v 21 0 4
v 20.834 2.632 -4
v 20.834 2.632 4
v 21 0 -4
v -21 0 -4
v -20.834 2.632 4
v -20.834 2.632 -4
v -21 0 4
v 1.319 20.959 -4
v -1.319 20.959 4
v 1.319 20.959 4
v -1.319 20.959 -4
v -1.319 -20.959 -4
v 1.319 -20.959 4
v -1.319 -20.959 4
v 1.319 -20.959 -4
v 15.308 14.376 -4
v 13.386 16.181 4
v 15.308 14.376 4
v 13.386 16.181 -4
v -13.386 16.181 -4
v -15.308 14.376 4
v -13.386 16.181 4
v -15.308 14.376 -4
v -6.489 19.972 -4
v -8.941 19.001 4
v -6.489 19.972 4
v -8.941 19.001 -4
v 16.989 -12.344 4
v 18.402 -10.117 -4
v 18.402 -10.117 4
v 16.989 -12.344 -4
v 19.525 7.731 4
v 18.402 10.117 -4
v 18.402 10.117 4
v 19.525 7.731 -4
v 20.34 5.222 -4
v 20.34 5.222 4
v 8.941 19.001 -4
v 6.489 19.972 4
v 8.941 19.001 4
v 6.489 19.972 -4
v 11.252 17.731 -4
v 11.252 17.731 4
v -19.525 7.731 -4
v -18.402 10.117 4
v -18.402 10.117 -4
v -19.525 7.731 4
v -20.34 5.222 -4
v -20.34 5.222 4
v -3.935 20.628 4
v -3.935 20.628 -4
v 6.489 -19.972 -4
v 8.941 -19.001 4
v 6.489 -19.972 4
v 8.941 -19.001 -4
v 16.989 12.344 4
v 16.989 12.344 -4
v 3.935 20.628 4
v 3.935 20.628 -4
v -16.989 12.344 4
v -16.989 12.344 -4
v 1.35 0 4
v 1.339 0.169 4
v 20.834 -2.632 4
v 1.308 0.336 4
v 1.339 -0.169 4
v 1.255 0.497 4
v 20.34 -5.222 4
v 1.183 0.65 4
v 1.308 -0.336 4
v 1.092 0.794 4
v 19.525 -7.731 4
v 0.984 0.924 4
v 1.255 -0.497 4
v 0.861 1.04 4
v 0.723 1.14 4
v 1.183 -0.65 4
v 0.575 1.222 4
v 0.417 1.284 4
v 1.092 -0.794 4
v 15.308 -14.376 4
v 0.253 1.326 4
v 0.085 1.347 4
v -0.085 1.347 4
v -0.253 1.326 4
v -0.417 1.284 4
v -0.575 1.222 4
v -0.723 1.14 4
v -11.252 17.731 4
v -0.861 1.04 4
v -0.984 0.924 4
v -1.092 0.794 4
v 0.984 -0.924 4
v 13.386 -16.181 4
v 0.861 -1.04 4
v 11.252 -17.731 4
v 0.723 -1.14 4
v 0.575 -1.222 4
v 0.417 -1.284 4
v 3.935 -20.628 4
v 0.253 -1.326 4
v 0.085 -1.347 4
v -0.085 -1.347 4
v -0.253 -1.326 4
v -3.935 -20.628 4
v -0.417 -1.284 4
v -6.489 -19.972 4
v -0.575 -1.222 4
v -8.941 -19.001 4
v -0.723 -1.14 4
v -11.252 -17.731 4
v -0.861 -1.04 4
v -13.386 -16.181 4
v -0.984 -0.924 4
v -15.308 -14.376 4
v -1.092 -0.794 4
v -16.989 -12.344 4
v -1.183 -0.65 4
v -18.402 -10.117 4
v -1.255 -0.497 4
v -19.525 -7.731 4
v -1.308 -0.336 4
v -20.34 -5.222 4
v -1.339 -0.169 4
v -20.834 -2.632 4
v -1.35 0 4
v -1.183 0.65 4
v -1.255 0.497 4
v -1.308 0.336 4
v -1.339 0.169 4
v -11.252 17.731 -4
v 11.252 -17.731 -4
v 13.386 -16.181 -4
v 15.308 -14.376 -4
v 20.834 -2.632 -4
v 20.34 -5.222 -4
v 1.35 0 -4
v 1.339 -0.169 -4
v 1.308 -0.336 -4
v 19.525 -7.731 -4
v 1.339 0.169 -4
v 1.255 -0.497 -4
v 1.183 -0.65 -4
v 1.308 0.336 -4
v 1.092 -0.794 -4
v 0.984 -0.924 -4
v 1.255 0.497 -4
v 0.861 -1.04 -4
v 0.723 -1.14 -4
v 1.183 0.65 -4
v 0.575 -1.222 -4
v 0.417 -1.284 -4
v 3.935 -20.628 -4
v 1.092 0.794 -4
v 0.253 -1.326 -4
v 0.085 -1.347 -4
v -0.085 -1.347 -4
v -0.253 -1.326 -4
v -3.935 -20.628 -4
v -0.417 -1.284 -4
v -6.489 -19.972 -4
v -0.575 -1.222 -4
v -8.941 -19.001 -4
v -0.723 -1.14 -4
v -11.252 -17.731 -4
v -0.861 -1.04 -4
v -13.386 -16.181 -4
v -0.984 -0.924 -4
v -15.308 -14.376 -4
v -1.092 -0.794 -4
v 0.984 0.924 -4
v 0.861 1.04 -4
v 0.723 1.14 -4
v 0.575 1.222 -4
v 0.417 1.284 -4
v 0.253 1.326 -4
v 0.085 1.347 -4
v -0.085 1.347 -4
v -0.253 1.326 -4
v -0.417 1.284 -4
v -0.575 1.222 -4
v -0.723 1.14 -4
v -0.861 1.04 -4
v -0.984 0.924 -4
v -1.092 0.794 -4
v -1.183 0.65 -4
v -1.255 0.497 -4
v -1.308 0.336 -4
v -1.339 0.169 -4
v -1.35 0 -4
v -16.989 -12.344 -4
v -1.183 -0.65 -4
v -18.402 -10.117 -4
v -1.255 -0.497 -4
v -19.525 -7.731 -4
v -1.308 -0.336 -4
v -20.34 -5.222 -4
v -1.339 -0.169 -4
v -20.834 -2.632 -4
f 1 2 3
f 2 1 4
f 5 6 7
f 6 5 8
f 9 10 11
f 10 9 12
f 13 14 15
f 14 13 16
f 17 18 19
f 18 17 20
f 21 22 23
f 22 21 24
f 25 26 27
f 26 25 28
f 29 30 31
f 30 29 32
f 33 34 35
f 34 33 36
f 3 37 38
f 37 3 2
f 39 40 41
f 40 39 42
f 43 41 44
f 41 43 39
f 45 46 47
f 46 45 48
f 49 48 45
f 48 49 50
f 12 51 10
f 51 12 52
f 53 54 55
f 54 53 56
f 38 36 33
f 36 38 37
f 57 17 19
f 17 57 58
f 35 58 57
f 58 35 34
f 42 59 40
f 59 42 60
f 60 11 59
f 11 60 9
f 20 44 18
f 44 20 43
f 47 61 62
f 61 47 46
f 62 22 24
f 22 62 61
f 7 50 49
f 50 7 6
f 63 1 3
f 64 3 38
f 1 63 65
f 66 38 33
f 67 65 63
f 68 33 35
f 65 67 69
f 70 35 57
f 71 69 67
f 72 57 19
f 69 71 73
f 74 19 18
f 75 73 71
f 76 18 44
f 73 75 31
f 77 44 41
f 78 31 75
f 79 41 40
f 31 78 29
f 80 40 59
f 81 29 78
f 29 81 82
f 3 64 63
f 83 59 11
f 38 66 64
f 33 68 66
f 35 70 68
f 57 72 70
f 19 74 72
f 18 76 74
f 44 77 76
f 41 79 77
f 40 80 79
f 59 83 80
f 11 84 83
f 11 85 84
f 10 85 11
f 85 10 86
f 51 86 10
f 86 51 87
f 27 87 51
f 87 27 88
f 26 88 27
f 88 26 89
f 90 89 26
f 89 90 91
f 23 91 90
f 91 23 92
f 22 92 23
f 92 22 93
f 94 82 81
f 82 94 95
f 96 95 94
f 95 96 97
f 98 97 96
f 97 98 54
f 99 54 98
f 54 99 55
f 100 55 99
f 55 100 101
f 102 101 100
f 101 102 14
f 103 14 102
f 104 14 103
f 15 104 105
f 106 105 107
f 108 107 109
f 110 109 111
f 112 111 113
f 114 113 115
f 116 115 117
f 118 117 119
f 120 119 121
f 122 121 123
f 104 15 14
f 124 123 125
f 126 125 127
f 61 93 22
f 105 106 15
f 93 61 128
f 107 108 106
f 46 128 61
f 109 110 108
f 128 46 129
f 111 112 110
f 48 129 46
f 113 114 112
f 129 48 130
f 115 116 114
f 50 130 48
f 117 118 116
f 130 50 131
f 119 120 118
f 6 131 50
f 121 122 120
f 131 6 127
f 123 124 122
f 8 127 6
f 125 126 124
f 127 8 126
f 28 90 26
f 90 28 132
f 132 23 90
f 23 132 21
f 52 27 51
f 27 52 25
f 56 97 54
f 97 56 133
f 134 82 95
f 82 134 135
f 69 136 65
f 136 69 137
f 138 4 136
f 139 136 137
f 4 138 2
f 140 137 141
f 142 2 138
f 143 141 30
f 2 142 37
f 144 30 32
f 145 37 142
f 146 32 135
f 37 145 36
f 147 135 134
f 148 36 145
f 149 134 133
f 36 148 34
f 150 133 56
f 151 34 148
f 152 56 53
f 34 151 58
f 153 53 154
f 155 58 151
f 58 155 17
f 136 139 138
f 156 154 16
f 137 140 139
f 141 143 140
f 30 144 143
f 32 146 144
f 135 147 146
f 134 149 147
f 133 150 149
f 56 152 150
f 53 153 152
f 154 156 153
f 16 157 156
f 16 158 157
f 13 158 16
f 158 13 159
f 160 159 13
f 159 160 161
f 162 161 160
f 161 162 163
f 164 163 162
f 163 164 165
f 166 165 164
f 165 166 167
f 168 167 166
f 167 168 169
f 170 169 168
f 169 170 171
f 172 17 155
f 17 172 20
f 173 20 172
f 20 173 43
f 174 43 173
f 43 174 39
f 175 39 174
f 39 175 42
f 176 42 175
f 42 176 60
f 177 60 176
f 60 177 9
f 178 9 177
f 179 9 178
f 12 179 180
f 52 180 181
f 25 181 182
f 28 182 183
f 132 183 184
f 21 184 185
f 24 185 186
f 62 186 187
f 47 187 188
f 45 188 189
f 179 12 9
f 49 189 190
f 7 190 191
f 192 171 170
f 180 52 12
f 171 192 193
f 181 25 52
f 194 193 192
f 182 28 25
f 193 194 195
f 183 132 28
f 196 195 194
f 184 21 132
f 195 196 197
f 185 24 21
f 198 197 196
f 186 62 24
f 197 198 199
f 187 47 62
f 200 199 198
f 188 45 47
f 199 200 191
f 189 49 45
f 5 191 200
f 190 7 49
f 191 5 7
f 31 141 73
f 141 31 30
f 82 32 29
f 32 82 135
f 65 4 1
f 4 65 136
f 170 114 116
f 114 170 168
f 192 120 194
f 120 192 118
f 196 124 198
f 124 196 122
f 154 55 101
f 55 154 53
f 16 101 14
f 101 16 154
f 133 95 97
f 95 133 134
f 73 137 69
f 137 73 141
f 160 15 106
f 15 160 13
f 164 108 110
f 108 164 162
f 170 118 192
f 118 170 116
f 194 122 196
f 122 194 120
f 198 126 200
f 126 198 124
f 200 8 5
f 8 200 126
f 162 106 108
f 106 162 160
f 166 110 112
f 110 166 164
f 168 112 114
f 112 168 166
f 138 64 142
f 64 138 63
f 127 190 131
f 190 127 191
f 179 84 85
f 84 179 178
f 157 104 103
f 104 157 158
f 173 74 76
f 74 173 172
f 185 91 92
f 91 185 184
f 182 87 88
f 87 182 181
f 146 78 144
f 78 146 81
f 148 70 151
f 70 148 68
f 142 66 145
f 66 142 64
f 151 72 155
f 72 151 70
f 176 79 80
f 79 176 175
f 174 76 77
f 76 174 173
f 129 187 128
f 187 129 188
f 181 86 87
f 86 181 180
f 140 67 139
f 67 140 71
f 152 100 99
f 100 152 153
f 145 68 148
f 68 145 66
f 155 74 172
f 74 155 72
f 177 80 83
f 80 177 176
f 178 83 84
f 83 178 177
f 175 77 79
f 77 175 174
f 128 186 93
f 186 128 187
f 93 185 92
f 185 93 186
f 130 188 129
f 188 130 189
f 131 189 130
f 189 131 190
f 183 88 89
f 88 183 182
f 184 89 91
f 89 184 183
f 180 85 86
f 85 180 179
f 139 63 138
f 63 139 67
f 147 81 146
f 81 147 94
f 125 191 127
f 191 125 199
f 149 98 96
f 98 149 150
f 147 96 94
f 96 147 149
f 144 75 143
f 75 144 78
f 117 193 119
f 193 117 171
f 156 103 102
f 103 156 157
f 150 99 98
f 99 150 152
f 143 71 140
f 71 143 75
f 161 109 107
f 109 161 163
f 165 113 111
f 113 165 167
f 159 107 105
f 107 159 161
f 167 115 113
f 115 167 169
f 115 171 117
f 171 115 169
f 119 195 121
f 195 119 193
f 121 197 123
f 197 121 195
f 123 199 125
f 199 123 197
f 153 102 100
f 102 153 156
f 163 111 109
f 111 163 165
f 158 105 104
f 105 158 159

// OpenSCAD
$fn = 50;


difference() {
	union() {
		translate(v = [0, 0, -4.0000000000]) {
			cylinder(h = 8, r = 21.0000000000);
		}
	}
	union() {
		translate(v = [0, 0, -100.0000000000]) {
			cylinder(h = 200, r = 1.3500000000);
		}
	}
}
